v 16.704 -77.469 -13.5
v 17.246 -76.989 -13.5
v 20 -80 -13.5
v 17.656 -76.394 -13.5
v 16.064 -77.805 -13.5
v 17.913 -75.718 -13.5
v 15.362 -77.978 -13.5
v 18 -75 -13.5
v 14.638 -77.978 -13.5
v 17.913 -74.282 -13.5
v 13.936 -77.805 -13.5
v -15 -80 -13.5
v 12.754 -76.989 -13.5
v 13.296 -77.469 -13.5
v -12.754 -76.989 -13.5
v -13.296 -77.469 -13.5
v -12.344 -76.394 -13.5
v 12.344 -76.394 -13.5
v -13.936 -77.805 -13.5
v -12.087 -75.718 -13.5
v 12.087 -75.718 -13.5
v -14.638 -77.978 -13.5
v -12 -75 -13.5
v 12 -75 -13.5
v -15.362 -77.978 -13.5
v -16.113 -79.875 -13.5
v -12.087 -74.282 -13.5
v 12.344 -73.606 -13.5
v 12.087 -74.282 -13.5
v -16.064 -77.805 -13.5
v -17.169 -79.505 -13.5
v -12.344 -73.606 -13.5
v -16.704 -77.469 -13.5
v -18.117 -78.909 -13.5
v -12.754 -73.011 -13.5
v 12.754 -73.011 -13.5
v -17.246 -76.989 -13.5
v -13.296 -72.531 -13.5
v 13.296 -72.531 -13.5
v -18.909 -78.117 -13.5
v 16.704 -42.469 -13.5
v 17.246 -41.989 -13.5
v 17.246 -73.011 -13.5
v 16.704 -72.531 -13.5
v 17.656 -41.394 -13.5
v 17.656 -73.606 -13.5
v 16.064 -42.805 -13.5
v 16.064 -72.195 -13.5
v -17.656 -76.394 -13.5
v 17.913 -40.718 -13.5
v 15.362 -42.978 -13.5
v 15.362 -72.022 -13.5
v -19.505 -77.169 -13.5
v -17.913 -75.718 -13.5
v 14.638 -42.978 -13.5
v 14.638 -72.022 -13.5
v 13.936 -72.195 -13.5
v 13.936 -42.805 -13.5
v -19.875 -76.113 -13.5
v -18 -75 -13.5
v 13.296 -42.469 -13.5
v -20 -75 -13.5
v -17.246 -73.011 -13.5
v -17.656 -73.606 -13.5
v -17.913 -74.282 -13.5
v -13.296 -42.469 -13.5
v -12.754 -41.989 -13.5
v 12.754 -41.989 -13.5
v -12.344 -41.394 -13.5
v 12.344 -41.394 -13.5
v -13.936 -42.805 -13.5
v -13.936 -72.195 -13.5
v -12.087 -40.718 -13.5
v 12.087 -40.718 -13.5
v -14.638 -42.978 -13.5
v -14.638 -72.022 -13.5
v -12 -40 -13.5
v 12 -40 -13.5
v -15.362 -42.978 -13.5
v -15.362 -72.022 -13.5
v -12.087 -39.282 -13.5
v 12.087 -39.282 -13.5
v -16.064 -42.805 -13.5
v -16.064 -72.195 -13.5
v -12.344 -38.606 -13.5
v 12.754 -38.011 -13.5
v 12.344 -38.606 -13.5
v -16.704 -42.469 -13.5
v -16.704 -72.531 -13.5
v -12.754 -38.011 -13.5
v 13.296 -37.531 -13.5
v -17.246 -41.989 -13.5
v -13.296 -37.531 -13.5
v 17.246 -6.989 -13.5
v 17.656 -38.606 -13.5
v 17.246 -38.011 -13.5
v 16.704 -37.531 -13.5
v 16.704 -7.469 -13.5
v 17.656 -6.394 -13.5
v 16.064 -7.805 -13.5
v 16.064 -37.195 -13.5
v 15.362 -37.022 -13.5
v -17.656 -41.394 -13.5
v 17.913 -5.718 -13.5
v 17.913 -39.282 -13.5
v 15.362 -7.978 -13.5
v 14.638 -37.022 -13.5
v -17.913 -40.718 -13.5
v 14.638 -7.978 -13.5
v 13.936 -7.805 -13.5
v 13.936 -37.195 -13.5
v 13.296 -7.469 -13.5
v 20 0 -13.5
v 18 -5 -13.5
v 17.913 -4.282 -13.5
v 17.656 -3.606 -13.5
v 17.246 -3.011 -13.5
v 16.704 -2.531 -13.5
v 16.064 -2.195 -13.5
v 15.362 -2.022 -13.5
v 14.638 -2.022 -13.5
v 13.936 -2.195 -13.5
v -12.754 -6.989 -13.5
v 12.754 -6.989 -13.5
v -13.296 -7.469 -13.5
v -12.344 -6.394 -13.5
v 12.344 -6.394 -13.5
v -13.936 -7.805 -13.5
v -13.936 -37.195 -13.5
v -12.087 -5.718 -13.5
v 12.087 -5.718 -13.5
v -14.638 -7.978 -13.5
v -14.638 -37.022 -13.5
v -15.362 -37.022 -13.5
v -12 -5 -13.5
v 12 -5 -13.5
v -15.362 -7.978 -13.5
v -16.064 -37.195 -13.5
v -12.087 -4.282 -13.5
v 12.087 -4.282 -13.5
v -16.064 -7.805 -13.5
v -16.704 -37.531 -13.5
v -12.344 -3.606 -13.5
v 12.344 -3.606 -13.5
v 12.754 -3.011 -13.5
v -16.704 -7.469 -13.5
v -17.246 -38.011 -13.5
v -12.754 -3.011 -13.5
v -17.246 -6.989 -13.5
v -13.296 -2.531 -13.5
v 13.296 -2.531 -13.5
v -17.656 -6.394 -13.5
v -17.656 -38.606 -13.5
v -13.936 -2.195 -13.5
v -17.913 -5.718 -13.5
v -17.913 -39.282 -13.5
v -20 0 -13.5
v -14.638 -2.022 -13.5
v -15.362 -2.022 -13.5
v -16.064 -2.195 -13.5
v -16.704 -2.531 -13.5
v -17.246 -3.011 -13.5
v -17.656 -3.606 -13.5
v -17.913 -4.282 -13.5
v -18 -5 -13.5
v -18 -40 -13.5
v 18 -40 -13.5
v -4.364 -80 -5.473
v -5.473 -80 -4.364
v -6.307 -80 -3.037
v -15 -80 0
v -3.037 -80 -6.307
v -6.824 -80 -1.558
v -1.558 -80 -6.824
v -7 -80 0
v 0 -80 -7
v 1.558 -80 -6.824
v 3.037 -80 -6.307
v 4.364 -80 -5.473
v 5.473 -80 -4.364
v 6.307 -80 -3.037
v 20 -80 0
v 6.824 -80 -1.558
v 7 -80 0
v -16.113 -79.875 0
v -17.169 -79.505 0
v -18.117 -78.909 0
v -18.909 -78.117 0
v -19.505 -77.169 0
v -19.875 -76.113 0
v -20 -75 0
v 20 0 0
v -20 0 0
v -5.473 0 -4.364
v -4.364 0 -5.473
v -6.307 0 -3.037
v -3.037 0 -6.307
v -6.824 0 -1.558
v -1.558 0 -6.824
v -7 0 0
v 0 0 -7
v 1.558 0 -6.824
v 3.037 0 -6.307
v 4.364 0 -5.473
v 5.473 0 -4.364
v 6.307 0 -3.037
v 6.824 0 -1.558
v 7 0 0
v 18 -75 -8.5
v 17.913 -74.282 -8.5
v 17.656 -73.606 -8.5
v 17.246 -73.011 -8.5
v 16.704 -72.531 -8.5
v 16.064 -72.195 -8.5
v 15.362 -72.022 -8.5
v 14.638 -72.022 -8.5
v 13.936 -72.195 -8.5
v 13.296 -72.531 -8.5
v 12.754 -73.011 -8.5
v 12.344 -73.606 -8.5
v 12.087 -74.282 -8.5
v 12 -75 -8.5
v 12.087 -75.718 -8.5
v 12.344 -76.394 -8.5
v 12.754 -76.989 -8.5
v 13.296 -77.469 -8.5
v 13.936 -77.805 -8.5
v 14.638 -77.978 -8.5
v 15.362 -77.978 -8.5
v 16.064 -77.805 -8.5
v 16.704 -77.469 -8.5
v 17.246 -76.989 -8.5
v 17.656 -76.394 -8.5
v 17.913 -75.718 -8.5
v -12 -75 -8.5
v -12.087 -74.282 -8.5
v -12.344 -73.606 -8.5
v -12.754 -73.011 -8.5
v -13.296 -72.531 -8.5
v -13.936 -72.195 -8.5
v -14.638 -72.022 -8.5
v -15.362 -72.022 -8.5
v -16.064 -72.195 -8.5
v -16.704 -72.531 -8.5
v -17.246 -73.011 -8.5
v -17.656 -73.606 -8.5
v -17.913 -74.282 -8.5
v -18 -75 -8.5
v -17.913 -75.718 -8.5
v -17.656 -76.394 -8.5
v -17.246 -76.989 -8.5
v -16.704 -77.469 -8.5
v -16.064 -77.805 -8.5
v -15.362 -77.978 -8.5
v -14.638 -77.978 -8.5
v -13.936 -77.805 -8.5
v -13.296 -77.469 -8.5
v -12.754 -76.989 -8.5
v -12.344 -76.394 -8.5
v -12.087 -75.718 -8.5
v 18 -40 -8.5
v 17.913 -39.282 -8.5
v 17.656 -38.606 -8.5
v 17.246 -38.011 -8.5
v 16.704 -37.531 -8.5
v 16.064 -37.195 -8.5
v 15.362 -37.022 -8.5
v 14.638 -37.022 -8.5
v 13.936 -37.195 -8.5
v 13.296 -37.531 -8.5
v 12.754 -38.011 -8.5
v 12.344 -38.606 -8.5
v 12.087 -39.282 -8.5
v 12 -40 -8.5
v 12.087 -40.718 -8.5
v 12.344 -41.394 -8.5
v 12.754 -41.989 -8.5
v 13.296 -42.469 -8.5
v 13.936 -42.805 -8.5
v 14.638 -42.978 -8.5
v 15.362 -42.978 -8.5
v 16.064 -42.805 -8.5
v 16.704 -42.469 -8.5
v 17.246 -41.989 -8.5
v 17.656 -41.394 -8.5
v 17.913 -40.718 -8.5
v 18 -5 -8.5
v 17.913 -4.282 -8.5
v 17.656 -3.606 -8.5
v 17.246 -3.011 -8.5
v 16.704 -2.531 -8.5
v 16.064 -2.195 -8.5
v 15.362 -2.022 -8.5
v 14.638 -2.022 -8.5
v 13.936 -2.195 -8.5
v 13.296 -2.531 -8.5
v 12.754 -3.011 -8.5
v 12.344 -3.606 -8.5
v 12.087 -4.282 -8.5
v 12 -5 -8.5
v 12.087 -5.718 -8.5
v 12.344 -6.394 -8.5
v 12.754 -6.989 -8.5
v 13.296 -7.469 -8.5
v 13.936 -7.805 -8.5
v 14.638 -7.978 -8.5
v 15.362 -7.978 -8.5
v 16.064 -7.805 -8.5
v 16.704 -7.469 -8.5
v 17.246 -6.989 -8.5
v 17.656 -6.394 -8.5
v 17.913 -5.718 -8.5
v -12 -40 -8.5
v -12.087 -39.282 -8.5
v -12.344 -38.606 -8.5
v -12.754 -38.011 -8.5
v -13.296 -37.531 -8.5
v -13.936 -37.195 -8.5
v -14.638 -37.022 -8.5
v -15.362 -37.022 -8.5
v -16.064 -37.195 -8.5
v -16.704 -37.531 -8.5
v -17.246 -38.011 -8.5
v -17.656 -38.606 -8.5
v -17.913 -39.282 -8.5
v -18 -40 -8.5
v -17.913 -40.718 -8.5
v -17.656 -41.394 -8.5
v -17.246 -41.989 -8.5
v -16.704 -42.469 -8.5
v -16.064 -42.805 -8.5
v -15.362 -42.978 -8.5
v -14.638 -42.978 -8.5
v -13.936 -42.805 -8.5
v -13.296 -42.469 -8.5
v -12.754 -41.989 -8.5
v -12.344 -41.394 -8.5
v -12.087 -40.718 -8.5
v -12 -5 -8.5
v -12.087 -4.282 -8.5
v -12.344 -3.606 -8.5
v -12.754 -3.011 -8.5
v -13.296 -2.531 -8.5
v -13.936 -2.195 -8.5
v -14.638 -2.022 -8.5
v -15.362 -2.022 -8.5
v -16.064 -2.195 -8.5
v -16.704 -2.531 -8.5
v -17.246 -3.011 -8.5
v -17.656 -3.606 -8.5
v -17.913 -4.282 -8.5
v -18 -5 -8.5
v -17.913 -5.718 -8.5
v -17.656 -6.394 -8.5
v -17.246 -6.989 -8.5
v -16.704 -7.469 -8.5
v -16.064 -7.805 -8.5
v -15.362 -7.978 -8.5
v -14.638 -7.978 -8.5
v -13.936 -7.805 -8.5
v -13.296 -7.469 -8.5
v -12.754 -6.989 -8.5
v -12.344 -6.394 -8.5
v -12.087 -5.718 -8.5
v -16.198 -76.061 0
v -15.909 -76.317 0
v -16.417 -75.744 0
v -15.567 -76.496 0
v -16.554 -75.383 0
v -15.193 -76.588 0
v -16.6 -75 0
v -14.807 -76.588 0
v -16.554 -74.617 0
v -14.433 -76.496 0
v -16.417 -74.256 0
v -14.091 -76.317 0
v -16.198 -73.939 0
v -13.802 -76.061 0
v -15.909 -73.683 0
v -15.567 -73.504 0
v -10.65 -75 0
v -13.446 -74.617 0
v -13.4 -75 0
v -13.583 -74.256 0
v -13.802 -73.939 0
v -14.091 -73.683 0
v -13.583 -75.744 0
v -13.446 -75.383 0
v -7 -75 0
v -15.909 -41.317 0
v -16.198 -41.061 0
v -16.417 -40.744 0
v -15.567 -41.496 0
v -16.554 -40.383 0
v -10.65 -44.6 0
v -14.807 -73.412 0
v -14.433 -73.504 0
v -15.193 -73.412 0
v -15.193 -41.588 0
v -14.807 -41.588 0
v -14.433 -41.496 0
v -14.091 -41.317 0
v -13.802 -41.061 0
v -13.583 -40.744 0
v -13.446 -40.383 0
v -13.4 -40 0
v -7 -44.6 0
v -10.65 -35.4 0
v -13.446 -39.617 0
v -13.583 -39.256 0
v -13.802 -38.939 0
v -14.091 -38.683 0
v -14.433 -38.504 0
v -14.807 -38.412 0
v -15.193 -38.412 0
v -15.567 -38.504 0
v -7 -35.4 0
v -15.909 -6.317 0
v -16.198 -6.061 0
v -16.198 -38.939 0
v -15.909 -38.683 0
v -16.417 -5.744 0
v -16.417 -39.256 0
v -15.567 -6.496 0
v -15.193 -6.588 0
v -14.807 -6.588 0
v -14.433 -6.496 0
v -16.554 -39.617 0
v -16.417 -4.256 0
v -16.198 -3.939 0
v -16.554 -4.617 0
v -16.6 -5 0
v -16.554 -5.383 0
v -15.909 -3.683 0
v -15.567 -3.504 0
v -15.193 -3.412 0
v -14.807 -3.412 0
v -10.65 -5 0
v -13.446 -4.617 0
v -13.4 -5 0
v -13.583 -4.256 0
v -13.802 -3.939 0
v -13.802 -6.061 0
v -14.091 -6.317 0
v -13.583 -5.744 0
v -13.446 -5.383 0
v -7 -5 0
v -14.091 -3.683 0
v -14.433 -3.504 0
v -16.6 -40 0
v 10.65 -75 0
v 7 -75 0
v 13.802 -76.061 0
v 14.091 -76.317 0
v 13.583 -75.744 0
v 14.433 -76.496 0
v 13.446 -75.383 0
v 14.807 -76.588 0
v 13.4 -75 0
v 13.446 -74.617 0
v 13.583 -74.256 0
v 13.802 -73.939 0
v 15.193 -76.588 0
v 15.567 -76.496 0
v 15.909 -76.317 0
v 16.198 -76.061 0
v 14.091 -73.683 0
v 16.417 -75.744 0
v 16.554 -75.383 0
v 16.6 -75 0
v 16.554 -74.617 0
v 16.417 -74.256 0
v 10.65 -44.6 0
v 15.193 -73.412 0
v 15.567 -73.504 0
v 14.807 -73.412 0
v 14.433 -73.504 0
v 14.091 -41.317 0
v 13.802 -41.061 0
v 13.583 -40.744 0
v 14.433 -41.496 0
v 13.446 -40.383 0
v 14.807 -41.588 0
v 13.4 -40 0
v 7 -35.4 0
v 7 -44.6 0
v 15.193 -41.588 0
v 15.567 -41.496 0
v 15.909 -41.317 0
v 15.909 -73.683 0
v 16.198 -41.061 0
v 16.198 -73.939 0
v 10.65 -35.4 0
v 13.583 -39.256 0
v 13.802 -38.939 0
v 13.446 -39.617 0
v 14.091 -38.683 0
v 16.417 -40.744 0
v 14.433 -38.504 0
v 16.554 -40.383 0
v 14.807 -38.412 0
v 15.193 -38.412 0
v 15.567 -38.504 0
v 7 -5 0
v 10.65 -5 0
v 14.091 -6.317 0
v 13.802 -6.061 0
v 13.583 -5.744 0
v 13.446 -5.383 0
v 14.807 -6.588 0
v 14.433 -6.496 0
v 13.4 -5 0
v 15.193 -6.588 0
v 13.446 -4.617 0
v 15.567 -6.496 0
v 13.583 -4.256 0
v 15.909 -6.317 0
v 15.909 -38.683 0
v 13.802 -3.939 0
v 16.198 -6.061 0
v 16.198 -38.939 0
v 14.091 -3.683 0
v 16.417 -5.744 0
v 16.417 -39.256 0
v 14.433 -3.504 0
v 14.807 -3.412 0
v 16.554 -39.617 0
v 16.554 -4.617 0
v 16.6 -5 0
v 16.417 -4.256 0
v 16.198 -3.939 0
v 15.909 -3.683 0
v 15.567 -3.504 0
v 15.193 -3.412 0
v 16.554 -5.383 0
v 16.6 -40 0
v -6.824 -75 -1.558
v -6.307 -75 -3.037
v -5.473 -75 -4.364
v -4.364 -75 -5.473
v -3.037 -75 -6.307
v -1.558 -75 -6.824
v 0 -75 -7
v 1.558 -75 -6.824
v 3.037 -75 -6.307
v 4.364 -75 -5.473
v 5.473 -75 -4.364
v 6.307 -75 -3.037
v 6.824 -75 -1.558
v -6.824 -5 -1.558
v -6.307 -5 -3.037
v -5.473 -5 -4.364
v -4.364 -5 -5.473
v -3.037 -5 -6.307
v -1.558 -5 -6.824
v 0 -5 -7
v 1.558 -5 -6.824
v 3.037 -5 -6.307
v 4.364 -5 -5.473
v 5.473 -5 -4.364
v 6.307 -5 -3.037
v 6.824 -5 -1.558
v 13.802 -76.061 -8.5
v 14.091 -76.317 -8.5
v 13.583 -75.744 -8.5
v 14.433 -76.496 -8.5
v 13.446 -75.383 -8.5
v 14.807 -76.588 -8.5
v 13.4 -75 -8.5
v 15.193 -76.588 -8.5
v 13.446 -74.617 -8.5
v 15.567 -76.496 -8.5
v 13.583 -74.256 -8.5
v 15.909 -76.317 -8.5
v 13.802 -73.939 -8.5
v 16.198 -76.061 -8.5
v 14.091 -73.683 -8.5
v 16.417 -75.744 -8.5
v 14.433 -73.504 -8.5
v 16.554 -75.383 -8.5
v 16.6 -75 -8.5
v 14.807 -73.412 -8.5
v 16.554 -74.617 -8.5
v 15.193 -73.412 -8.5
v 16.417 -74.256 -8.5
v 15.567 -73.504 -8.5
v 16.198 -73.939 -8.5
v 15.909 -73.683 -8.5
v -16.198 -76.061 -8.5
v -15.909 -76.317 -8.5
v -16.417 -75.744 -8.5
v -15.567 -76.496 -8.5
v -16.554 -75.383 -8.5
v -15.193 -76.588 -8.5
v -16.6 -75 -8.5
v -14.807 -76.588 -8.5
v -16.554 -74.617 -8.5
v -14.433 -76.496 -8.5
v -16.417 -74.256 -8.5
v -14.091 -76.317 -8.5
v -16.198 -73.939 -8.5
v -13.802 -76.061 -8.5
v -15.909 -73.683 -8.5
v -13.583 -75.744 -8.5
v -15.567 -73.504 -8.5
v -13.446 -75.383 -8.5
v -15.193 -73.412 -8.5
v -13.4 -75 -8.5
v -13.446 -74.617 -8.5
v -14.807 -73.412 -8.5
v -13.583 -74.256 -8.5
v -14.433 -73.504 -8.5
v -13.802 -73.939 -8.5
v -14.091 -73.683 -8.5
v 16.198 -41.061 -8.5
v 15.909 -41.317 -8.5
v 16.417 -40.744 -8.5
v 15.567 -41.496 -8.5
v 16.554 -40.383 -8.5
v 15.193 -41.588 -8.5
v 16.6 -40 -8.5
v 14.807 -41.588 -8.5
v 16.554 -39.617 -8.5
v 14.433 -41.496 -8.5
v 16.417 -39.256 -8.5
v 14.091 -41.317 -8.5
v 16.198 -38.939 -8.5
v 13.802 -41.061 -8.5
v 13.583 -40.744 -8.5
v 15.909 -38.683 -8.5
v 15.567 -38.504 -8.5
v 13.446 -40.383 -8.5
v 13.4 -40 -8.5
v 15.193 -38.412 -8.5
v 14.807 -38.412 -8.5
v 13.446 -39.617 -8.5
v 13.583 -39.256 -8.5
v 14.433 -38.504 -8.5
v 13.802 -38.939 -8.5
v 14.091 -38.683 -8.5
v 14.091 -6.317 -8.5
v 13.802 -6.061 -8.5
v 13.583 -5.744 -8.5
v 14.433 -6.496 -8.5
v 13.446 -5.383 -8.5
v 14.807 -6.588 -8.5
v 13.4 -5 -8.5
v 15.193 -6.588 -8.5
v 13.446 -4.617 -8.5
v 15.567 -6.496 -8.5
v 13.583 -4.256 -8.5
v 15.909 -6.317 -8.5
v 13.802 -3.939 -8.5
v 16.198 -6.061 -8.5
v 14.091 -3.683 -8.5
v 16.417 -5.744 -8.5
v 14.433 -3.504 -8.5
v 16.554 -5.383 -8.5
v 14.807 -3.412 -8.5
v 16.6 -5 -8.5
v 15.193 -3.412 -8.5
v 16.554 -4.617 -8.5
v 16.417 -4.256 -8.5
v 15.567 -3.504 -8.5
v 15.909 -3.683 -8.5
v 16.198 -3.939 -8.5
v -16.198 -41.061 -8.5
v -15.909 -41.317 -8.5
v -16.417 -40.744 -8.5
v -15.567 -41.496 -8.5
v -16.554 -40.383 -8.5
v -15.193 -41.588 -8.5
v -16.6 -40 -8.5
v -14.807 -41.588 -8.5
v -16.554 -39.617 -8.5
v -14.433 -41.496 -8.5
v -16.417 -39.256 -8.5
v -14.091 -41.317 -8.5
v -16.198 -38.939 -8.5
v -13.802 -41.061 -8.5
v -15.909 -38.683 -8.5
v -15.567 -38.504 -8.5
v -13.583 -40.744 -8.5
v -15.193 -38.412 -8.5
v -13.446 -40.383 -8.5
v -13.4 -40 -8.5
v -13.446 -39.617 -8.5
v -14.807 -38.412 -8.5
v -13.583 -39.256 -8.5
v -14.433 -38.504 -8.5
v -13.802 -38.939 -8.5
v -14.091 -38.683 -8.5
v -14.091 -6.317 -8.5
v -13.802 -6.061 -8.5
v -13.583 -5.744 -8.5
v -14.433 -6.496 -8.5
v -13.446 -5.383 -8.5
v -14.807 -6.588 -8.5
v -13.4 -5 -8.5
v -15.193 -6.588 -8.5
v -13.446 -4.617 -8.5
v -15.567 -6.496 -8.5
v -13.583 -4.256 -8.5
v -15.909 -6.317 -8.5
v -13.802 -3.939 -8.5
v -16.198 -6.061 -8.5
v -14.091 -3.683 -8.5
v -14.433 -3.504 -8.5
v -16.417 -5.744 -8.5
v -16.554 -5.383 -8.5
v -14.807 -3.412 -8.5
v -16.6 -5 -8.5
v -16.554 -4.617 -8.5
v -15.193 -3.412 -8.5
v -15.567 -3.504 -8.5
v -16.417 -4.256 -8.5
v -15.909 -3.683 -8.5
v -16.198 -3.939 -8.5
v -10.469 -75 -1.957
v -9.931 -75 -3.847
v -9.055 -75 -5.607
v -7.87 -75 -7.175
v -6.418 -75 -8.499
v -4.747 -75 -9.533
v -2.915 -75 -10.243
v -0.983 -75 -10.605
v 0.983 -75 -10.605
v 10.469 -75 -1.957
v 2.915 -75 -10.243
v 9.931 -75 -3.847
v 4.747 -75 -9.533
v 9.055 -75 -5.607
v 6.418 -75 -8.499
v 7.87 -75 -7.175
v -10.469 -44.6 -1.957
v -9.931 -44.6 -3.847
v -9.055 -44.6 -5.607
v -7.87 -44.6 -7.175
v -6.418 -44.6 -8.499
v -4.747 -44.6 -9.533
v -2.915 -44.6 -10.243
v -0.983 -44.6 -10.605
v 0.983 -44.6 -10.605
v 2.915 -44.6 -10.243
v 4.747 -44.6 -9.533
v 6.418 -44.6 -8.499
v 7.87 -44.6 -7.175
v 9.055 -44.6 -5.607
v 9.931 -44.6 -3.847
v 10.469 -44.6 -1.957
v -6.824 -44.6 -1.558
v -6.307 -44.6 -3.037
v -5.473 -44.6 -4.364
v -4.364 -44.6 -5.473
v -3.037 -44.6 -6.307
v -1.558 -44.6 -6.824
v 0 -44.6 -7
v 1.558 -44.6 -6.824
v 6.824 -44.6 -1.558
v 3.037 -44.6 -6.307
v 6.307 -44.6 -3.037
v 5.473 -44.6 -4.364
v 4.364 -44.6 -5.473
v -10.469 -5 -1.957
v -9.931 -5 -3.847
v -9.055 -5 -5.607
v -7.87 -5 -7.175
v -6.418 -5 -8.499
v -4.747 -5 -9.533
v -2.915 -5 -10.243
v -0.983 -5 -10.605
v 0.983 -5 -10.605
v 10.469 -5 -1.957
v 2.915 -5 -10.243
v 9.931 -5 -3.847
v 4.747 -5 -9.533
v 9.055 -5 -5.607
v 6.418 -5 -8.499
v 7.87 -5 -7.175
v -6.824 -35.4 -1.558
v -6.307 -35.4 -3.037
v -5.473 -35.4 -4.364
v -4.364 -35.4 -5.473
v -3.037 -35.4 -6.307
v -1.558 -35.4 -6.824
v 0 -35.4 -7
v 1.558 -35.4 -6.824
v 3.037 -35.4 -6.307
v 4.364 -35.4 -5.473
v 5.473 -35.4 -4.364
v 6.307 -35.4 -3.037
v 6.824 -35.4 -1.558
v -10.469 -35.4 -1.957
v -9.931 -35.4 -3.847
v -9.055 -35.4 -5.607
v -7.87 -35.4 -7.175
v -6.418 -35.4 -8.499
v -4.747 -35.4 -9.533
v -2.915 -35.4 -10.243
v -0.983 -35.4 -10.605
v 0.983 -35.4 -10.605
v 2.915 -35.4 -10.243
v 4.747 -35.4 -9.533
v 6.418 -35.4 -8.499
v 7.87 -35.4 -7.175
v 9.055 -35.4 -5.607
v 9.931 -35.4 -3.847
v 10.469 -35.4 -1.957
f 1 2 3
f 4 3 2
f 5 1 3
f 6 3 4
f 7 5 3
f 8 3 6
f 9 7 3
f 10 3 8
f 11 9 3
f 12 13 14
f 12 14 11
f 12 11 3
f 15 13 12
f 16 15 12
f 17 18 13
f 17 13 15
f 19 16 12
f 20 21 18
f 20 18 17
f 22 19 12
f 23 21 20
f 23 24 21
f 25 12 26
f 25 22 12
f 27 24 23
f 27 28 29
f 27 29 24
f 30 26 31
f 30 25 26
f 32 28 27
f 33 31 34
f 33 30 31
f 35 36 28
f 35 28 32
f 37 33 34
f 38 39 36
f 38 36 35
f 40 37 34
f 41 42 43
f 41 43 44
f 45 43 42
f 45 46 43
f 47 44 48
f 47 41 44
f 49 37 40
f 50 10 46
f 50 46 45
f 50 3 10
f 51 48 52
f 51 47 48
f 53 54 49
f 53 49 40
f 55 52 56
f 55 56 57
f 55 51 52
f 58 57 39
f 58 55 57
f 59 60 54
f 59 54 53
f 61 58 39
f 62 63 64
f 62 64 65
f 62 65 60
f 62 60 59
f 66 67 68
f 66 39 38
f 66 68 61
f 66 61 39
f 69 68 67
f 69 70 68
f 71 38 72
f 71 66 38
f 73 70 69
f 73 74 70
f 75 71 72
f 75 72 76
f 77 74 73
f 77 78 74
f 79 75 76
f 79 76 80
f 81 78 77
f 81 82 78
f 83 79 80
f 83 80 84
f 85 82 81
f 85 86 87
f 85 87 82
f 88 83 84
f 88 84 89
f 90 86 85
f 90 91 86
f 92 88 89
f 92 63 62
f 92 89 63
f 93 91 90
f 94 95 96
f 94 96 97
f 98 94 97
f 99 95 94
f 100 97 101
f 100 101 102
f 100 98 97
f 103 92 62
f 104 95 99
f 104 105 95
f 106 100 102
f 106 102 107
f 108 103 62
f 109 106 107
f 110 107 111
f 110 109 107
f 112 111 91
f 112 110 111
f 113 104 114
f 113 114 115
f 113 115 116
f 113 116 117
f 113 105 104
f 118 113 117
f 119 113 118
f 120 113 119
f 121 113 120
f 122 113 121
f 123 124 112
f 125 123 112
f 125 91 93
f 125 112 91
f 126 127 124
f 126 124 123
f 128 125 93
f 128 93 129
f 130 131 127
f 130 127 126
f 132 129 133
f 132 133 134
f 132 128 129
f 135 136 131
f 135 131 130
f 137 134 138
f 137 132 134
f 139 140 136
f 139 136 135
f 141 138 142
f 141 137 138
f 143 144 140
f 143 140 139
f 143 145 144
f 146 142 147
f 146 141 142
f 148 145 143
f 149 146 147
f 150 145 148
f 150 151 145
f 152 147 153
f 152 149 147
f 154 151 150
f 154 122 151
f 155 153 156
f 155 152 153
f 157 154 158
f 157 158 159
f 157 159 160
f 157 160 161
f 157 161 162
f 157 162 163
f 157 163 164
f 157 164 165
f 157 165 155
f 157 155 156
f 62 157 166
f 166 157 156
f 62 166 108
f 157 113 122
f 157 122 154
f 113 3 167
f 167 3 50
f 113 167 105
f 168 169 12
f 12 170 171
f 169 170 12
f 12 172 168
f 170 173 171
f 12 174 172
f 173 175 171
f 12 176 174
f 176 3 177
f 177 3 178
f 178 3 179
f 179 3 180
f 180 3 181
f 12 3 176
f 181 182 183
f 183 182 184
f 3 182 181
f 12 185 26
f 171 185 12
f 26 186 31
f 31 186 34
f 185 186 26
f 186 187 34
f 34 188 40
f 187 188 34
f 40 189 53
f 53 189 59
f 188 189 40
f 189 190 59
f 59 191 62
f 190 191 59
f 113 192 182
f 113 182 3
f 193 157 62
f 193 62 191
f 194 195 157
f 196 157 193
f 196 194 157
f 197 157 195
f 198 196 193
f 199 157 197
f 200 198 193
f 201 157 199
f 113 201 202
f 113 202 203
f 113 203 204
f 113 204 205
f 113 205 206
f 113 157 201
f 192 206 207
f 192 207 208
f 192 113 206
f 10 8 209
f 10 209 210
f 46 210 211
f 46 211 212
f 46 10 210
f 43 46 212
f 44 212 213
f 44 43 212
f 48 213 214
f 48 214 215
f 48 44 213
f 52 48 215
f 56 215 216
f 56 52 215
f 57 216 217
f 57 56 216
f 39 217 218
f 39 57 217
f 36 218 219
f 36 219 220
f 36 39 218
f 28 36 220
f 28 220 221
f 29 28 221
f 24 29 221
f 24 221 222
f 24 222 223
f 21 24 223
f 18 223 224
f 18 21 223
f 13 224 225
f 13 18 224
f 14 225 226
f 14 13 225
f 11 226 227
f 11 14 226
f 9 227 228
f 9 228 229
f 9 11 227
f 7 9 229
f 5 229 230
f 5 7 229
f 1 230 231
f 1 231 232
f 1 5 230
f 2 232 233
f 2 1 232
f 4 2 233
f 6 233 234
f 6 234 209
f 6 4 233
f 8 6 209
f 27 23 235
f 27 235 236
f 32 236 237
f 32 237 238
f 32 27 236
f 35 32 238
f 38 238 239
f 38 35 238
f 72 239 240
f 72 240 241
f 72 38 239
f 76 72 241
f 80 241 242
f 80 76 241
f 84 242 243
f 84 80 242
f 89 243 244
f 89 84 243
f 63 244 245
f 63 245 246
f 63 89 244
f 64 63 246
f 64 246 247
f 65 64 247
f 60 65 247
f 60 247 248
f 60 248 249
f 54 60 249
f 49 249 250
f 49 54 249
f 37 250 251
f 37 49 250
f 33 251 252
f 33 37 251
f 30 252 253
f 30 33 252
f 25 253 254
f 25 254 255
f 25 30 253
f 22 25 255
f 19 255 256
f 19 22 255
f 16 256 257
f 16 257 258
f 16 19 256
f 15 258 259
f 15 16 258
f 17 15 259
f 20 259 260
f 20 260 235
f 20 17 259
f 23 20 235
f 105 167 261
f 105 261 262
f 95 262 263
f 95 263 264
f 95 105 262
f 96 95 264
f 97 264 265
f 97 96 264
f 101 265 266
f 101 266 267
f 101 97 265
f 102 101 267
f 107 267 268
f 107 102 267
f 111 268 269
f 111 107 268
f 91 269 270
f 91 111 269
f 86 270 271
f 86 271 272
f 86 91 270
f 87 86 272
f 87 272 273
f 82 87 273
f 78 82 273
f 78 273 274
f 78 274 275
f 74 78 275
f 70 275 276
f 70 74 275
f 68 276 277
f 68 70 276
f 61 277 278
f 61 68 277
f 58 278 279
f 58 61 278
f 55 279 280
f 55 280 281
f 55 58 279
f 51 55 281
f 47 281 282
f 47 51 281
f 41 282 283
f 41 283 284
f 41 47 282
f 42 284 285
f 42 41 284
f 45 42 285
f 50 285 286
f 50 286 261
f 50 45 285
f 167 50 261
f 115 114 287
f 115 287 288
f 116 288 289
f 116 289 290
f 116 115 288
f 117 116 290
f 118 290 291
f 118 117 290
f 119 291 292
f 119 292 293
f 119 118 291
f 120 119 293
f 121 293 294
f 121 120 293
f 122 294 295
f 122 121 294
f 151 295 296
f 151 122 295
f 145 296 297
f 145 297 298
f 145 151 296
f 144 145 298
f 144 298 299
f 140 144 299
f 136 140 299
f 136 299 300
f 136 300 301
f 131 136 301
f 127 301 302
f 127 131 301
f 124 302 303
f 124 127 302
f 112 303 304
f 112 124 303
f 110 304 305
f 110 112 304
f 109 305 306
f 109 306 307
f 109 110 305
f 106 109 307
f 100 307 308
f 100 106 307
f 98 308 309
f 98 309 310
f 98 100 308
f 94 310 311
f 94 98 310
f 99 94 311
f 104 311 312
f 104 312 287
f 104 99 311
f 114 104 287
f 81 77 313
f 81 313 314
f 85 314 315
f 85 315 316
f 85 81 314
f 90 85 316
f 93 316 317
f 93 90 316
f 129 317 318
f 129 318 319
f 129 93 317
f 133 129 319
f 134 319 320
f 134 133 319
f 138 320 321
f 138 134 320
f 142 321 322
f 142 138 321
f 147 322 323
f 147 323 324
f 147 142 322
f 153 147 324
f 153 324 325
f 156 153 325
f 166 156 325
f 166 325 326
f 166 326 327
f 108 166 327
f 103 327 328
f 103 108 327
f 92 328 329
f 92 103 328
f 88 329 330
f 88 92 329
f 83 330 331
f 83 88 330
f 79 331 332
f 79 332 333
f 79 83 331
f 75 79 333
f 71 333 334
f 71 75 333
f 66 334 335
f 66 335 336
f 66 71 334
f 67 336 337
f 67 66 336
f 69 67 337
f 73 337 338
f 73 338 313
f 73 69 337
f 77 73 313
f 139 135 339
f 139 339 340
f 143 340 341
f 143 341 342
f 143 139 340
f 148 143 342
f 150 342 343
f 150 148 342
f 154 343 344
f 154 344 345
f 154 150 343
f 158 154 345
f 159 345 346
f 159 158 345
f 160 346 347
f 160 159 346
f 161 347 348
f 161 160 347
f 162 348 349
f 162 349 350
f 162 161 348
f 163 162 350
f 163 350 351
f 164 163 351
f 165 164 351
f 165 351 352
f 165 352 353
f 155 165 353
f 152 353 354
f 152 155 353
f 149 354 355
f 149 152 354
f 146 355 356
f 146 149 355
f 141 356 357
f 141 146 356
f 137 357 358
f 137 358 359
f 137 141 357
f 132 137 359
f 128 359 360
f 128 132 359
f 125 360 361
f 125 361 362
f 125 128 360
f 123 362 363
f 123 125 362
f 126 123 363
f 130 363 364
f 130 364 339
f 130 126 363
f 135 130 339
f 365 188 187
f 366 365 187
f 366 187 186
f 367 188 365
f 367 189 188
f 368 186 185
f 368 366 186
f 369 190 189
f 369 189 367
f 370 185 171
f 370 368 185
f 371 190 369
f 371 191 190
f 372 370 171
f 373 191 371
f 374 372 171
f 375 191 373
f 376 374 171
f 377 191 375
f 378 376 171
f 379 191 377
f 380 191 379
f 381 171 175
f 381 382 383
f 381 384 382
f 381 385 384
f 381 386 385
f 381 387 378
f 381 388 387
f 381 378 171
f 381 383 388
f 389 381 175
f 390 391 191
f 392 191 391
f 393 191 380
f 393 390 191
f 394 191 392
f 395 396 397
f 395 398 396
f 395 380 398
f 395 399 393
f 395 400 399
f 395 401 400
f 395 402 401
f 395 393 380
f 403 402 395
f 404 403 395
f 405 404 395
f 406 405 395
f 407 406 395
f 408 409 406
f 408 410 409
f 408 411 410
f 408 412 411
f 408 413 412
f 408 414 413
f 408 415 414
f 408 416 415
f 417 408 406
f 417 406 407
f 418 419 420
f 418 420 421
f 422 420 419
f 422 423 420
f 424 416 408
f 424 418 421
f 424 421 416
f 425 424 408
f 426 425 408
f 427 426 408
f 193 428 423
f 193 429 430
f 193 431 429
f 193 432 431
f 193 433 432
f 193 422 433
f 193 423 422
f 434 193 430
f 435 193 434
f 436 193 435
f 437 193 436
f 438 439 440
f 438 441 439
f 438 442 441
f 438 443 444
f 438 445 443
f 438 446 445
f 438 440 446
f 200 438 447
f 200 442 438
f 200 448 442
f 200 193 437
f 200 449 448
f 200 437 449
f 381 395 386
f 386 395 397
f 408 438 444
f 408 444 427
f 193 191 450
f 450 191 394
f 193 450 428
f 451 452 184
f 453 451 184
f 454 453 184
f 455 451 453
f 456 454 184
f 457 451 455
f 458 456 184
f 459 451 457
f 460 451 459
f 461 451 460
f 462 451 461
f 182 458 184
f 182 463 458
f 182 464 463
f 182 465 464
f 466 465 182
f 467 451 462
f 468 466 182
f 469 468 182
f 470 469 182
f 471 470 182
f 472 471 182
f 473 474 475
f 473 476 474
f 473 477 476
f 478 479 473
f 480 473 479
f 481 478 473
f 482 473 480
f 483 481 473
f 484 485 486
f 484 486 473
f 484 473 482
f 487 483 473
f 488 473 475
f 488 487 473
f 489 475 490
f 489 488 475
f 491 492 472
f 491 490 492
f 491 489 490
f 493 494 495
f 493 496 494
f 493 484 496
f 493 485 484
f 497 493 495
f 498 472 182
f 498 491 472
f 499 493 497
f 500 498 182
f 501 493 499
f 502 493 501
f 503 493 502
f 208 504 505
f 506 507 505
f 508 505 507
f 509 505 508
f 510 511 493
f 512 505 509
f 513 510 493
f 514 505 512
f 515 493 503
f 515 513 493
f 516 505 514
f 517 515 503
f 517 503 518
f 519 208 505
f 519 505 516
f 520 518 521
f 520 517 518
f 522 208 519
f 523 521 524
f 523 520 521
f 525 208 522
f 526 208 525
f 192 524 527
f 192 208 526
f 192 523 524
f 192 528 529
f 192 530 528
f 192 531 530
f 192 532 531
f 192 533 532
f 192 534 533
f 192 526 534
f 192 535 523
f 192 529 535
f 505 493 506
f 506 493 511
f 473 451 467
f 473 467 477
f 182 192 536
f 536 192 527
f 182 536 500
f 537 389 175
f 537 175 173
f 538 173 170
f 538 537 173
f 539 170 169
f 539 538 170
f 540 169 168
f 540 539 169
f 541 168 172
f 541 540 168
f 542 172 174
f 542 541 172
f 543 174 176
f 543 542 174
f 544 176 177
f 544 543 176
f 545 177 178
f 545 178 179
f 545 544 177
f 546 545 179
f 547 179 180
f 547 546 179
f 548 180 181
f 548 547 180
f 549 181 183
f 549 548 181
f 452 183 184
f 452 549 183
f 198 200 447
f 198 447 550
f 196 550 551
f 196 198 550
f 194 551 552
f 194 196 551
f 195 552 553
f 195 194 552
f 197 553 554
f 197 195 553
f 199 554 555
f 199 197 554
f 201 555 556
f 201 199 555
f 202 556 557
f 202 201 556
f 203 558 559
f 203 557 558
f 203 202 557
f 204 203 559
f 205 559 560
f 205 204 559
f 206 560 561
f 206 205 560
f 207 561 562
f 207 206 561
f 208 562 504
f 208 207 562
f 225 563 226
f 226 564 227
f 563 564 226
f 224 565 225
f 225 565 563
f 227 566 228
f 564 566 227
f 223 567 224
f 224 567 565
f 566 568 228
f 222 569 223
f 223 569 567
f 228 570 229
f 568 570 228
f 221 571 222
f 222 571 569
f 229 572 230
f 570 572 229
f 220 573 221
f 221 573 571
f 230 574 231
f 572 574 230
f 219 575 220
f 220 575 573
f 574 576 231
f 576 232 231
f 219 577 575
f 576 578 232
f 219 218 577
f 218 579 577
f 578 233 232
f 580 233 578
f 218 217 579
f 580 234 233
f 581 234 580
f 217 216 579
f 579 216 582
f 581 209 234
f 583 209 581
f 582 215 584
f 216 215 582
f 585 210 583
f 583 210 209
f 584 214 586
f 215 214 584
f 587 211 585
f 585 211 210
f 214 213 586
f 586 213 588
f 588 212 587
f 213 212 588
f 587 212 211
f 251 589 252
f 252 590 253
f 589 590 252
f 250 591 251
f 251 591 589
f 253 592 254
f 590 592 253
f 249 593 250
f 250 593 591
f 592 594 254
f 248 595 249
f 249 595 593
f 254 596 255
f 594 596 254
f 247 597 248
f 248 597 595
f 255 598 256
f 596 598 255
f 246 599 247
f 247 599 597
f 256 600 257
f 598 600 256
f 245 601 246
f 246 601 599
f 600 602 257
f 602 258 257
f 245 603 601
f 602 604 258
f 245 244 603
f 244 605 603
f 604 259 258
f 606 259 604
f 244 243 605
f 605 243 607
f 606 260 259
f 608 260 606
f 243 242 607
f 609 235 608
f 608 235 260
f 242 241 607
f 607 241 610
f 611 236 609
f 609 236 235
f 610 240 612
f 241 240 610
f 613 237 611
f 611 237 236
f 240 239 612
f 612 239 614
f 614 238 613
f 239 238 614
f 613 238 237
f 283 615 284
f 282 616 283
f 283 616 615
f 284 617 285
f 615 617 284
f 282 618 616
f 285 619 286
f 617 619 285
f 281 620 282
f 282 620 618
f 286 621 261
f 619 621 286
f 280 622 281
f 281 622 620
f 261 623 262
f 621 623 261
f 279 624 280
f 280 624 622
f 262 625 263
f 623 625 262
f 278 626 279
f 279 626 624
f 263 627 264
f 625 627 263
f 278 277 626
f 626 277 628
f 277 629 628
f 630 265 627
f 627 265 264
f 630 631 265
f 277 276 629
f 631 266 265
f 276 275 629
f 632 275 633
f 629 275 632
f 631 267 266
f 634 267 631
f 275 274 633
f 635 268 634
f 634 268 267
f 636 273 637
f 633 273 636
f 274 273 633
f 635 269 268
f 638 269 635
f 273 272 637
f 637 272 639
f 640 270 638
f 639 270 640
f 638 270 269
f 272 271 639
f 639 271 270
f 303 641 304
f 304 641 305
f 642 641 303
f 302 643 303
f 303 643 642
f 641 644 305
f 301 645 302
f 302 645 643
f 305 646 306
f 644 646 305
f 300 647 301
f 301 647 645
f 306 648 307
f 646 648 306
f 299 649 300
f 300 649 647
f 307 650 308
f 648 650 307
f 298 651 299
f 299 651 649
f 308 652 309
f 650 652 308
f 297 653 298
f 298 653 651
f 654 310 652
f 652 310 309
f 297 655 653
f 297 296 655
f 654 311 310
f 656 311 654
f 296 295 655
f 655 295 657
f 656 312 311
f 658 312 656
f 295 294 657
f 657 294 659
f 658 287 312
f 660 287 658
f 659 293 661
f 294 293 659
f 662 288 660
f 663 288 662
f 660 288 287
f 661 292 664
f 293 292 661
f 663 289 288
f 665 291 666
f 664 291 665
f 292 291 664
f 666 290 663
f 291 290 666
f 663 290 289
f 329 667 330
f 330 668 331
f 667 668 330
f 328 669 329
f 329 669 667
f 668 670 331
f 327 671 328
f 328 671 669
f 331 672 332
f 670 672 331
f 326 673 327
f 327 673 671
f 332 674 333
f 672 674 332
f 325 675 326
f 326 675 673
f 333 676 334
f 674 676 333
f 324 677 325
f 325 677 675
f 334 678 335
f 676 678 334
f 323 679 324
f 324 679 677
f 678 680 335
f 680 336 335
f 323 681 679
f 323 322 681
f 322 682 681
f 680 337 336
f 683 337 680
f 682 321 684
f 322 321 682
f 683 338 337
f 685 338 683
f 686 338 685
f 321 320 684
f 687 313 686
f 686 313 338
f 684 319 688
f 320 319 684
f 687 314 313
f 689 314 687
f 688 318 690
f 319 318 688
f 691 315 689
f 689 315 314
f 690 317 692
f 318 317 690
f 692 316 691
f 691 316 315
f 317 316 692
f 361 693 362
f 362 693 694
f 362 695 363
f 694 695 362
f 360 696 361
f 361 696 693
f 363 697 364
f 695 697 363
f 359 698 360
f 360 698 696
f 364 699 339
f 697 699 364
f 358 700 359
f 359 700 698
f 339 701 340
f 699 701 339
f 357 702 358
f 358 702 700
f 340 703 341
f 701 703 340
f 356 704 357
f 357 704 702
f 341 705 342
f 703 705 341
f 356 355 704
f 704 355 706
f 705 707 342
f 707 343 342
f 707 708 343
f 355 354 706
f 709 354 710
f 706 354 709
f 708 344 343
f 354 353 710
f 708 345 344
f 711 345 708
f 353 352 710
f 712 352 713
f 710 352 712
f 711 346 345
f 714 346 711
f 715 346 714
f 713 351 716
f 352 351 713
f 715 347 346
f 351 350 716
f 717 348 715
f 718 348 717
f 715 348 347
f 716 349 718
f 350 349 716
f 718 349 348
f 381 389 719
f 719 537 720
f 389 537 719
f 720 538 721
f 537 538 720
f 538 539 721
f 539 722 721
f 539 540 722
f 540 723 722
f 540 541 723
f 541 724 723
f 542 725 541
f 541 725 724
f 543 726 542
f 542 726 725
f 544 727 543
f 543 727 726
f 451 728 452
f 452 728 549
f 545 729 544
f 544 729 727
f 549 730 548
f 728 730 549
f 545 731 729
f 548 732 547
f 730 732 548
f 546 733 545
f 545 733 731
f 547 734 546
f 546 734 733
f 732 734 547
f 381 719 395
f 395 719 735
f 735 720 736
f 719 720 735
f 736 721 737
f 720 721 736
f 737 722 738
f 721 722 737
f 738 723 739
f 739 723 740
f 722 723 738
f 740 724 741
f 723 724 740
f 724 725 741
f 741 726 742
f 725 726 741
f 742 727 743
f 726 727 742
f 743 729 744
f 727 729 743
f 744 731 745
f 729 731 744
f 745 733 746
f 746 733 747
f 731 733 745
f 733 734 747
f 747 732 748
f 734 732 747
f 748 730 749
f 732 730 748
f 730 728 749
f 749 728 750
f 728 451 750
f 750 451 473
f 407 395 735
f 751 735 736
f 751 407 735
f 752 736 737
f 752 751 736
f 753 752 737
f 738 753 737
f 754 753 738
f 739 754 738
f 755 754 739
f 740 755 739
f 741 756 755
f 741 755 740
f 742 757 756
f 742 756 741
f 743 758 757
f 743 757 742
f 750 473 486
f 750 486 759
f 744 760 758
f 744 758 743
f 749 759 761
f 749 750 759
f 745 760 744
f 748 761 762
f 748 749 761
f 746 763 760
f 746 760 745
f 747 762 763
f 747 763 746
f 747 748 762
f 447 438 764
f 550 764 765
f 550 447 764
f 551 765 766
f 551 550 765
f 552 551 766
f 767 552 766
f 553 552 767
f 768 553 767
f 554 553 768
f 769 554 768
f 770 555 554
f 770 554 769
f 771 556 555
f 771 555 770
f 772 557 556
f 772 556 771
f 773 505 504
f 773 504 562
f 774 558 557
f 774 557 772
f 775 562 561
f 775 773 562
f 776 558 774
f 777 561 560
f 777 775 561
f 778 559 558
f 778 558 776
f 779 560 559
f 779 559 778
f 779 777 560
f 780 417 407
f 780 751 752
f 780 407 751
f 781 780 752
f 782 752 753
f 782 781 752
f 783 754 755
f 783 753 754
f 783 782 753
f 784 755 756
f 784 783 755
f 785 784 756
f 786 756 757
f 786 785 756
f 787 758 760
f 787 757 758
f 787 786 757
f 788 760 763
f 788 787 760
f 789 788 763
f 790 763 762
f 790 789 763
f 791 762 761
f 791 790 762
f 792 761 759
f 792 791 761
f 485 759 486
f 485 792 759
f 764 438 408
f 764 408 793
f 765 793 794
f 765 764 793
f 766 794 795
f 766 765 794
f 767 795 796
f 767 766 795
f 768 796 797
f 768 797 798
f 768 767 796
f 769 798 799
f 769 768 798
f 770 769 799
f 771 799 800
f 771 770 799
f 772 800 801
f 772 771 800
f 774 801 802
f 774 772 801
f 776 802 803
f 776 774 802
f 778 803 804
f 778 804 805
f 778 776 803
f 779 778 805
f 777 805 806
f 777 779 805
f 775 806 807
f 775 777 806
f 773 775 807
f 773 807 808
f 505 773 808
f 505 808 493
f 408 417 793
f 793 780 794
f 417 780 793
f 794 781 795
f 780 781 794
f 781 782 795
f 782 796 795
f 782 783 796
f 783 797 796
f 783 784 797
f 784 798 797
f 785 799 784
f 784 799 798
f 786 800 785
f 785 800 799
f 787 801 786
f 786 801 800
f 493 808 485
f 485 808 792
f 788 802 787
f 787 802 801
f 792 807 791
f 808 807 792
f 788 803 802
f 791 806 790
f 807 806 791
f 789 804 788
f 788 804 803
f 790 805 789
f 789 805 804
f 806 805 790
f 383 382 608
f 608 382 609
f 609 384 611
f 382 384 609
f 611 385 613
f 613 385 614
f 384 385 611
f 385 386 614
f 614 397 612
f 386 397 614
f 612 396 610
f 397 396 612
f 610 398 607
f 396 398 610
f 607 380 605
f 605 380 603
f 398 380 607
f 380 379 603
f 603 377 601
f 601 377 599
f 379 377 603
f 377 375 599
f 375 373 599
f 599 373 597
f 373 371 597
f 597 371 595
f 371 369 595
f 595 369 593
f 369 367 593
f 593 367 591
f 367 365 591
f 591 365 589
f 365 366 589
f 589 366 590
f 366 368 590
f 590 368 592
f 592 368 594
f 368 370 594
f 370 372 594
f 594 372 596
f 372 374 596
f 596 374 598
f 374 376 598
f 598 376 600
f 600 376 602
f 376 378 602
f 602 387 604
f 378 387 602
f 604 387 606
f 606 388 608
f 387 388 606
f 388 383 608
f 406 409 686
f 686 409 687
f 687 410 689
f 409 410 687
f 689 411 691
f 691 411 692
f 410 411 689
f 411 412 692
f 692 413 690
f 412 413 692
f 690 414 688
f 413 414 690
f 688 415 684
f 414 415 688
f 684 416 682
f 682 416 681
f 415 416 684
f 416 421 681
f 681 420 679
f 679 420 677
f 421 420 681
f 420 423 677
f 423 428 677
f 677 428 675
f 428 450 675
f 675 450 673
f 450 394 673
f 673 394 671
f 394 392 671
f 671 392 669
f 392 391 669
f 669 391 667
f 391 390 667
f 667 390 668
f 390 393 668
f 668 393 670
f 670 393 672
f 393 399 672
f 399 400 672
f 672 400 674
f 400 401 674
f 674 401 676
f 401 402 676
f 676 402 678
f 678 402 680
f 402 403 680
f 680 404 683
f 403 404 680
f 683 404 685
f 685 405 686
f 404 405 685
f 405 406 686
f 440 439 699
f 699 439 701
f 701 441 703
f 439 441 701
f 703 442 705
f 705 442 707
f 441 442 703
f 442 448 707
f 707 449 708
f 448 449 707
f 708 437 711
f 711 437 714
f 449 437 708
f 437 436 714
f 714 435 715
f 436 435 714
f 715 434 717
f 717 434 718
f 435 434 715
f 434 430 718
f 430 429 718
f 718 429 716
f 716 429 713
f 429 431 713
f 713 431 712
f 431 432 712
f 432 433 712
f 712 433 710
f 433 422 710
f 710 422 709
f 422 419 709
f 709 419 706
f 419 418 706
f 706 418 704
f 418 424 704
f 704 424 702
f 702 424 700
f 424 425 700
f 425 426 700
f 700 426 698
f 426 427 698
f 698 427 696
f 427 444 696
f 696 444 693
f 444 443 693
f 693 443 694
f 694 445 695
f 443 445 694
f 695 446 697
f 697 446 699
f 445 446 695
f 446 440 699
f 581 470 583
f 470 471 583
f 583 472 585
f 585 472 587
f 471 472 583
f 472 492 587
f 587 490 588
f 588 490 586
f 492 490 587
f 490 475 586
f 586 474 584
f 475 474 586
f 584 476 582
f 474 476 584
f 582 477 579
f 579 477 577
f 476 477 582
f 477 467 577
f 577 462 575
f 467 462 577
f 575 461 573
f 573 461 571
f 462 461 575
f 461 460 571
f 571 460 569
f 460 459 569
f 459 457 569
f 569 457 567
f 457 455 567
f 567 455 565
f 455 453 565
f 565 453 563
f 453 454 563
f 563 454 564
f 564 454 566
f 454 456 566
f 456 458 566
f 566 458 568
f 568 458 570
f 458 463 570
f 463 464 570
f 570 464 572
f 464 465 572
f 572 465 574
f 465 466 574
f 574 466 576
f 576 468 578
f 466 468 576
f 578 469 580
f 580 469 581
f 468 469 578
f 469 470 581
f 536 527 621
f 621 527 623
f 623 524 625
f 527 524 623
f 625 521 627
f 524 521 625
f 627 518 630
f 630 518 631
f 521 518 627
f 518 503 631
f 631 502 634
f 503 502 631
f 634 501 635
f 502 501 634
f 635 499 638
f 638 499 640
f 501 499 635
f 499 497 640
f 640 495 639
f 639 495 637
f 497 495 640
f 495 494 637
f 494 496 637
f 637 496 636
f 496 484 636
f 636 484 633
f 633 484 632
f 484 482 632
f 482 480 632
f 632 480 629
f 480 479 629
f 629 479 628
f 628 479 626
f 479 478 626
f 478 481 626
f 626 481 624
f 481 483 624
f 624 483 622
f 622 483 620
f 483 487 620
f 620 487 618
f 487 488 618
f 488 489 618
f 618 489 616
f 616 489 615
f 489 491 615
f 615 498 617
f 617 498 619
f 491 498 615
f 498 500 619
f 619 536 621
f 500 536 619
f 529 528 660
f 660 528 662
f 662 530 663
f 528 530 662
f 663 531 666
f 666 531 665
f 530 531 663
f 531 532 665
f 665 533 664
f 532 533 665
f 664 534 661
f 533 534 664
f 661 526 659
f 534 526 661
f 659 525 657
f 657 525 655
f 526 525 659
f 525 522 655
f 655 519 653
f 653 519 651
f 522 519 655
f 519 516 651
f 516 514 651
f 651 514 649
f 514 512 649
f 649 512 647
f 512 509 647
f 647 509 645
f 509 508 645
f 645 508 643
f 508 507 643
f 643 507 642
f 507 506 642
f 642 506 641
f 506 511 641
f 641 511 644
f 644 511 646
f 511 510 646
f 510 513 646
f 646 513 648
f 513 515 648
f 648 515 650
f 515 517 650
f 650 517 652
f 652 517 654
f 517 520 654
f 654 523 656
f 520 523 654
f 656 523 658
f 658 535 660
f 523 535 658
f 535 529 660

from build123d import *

# Parameters (mm, degrees)
PAD_DEPTH       = 80
SKETCH001_R     = 1.6
POCKET_DEPTH    = 13.501
SKETCH002_R     = 3
POCKET001_DEPTH = 5
SKETCH003_R     = 10.65
POCKET002_DEPTH = 30.4
SKETCH004_R     = 10.65
POCKET003_DEPTH = 30.4
FILLET_R        = 5


with BuildPart() as part:
    # Sketch → Pad (new body)
    with BuildSketch(Plane.XZ):
        with BuildLine():
            Line((20, 0), (20, -13.5))
            Line((20, -13.5), (-20, -13.5))
            Line((-20, -13.5), (-20, 0))
            Line((-20, 0), (-7, 0))
            ThreePointArc((-7, 0), (0, -7), (7, 0))
            Line((7, 0), (20, 0))
        make_face()
    extrude(amount=PAD_DEPTH)

    # Sketch001 → Pocket (cut, through all)
    with BuildSketch(Plane.XY):
        with Locations((-15, -5)):
            Circle(SKETCH001_R)
        with Locations((-15, -40)):
            Circle(SKETCH001_R)
        with Locations((-15, -75)):
            Circle(SKETCH001_R)
        with Locations((15, -5)):
            Circle(SKETCH001_R)
        with Locations((15, -40)):
            Circle(SKETCH001_R)
        with Locations((15, -75)):
            Circle(SKETCH001_R)
    extrude(amount=-POCKET_DEPTH, mode=Mode.SUBTRACT)

    # Sketch002 (on DatumPlane) → Pocket001 (cut)
    with BuildSketch(Plane.XY.offset(-13.5)):
        with Locations((-15, -5)):
            Circle(SKETCH002_R)
        with Locations((-15, -40)):
            Circle(SKETCH002_R)
        with Locations((-15, -75)):
            Circle(SKETCH002_R)
        with Locations((15, -5)):
            Circle(SKETCH002_R)
        with Locations((15, -40)):
            Circle(SKETCH002_R)
        with Locations((15, -75)):
            Circle(SKETCH002_R)
    extrude(amount=POCKET001_DEPTH, mode=Mode.SUBTRACT)

    # Sketch003 (on DatumPlane) → Pocket002 (cut)
    with BuildSketch(Plane.XZ.offset(5)):
        Circle(SKETCH003_R)
    extrude(amount=POCKET002_DEPTH, mode=Mode.SUBTRACT)

    # Sketch004 (on DatumPlane) → Pocket003 (cut)
    with BuildSketch(Plane.XZ.offset(75)):
        Circle(SKETCH004_R)
    extrude(amount=-POCKET003_DEPTH, mode=Mode.SUBTRACT)

    # Fillet
    fillet_edges = [part.edges().sort_by_distance(p)[0] for p in [
        (-20, -80, -6.75),
    ]]
    fillet(fillet_edges, radius=FILLET_R)


solid = part.part
